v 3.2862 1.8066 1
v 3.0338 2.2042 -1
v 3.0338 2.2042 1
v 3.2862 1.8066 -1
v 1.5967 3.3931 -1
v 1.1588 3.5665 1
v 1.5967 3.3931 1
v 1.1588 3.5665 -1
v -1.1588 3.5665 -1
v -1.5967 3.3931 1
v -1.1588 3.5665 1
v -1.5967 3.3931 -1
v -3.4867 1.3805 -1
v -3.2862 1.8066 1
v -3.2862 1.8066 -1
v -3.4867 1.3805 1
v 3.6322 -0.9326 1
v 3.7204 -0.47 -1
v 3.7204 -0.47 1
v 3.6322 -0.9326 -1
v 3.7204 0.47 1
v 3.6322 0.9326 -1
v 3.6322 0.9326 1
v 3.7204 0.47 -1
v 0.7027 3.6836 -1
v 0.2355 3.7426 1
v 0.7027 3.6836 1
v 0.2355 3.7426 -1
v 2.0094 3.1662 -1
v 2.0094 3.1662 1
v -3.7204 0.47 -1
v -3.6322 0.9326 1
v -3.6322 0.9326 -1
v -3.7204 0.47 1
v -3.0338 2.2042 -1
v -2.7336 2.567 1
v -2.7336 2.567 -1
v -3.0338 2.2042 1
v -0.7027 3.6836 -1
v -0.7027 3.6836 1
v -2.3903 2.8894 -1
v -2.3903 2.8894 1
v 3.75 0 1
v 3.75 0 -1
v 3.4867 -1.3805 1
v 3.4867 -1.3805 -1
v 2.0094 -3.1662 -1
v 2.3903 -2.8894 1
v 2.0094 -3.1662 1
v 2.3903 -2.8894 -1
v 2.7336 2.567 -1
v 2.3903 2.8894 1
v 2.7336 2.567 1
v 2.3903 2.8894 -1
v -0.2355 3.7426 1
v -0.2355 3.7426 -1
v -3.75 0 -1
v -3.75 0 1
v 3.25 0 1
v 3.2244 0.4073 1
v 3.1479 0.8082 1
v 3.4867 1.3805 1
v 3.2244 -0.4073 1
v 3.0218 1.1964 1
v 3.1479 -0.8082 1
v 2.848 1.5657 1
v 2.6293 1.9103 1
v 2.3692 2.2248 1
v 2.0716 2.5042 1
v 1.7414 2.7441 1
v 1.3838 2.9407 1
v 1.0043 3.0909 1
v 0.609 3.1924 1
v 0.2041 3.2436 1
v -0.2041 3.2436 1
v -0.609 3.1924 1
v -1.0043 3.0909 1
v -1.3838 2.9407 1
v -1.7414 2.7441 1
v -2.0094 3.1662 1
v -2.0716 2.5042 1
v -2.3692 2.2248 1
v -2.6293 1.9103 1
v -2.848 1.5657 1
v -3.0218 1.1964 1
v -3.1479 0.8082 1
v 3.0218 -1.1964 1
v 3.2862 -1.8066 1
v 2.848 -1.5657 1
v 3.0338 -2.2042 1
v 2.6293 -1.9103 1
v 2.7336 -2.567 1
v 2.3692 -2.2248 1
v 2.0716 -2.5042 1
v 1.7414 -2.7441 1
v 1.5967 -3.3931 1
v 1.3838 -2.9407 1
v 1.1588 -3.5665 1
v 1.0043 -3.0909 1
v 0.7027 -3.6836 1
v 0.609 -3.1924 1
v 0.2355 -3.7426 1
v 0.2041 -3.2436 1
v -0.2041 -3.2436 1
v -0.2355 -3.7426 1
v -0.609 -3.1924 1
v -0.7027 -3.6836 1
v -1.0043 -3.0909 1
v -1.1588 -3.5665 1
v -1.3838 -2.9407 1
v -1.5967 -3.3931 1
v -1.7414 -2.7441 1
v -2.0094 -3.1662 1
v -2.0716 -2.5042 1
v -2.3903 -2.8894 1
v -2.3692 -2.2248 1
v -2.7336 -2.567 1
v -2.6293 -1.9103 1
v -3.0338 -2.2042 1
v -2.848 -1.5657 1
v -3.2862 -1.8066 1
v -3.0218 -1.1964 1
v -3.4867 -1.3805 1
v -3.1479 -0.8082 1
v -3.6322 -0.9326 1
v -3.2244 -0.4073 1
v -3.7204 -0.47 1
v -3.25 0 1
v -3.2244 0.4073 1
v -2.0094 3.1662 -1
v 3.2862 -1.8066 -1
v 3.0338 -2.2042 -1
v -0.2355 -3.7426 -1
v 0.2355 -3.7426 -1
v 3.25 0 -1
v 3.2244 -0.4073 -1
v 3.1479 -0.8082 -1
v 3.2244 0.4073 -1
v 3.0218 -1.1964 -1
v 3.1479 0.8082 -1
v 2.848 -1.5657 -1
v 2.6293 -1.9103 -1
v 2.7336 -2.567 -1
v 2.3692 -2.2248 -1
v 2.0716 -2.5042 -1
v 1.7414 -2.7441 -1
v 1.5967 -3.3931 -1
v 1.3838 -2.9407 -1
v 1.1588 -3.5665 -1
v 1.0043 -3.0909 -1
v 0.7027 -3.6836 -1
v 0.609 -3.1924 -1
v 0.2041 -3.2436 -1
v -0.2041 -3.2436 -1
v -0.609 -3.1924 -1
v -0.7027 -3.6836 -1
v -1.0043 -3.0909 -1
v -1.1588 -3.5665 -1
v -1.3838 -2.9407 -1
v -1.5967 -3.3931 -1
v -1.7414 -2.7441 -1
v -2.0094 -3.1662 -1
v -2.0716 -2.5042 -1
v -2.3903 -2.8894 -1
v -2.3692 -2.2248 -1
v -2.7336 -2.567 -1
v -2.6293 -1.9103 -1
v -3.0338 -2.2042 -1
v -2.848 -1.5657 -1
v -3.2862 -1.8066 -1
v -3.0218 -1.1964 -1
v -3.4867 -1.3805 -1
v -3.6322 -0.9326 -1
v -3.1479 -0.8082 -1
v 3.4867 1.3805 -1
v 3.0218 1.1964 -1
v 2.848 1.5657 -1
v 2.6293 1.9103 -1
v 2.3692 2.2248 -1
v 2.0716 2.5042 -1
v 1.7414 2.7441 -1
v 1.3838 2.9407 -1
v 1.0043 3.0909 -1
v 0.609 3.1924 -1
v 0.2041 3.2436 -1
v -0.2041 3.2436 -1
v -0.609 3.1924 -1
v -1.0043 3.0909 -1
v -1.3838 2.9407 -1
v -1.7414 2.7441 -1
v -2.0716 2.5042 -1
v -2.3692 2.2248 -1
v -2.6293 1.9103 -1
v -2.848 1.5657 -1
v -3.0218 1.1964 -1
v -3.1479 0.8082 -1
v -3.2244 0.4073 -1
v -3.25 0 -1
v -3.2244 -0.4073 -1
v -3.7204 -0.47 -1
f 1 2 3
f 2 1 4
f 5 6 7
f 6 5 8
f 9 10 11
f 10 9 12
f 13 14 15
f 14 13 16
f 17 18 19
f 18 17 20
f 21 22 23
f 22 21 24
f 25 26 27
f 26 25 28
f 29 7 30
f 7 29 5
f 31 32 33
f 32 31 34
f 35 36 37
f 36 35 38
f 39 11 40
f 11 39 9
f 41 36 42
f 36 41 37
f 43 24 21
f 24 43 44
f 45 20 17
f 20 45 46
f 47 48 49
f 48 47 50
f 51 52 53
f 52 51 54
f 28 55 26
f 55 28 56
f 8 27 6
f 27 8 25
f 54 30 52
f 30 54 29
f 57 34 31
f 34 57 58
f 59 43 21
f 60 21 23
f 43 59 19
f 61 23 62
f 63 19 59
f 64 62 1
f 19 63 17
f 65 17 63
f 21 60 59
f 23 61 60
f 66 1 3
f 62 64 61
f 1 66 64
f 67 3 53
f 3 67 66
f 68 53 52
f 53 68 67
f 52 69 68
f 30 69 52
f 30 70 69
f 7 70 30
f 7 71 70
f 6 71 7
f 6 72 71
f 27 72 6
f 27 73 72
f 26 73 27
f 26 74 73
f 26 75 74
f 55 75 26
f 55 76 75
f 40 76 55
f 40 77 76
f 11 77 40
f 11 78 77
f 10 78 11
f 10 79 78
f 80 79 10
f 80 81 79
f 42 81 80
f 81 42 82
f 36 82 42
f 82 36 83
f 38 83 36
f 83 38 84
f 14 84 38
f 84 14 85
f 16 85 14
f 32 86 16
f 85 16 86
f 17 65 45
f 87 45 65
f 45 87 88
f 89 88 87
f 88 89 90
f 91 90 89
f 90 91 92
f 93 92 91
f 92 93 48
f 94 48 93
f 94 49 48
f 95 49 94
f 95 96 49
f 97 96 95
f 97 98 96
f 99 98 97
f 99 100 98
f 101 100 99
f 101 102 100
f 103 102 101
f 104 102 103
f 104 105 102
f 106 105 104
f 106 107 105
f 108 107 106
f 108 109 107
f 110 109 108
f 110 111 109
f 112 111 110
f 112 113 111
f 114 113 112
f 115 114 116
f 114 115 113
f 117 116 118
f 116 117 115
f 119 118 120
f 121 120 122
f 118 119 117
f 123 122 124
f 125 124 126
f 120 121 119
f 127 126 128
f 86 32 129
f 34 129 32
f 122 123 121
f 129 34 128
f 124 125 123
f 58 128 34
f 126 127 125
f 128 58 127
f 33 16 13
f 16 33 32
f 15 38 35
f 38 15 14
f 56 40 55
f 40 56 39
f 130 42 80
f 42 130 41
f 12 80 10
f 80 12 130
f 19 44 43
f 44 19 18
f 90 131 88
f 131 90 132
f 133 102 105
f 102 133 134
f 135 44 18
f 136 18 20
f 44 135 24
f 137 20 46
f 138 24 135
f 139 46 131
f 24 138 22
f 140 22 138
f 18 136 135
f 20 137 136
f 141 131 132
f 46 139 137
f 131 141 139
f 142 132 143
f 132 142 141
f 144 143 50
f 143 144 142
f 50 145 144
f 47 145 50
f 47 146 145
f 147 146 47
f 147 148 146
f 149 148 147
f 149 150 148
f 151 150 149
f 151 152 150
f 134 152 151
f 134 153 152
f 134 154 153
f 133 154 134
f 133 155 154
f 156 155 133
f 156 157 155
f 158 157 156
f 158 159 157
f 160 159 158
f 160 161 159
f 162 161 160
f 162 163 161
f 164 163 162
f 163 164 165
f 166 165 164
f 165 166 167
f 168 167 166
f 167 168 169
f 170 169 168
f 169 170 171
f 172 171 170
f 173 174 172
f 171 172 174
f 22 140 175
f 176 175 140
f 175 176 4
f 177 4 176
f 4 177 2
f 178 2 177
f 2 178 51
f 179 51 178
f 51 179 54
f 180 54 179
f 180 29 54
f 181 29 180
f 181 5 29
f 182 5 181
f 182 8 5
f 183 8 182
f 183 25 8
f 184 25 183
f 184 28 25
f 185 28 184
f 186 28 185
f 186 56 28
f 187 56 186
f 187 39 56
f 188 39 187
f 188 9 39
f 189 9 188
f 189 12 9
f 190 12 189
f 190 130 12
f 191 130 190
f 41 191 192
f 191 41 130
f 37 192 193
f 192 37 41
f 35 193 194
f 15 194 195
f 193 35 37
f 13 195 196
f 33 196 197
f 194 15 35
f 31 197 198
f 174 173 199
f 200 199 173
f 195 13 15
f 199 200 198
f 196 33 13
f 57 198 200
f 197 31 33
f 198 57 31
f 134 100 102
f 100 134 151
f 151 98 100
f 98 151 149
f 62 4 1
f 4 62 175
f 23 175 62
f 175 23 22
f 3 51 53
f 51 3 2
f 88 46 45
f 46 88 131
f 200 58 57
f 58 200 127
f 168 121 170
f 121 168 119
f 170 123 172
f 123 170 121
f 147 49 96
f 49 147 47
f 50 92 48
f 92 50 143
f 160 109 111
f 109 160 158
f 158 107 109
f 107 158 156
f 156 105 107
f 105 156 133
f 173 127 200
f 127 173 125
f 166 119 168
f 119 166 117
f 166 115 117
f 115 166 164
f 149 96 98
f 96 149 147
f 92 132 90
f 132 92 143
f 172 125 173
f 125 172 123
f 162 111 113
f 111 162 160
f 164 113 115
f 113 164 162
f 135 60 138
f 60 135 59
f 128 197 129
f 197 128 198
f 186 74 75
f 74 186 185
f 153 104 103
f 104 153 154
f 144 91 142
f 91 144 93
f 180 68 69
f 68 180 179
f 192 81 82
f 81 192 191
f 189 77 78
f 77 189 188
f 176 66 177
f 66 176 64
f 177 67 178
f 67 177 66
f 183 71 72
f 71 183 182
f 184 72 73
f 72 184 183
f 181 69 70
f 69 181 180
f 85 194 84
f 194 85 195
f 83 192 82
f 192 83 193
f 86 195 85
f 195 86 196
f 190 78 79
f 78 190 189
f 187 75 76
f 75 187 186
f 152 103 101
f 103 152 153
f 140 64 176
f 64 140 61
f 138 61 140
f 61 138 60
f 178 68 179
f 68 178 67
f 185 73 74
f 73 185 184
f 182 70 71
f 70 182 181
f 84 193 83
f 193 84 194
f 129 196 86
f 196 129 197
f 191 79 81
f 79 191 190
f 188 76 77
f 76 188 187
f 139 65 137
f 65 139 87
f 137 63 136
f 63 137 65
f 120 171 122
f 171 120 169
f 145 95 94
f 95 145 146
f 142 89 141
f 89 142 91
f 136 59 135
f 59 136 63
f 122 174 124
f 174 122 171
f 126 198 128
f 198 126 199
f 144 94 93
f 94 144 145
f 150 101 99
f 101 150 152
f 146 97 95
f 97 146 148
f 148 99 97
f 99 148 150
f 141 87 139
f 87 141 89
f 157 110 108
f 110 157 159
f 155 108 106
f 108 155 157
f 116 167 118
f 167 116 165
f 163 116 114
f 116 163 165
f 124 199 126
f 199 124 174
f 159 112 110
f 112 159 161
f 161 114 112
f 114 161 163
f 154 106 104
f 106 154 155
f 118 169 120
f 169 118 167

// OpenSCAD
$fn = 50;


difference() {
	union() {
		translate(v = [0, 0, -1.0000000000]) {
			cylinder(h = 2, r = 3.7500000000);
		}
	}
	union() {
		translate(v = [0, 0, -100.0000000000]) {
			cylinder(h = 200, r = 3.2500000000);
		}
	}
}
